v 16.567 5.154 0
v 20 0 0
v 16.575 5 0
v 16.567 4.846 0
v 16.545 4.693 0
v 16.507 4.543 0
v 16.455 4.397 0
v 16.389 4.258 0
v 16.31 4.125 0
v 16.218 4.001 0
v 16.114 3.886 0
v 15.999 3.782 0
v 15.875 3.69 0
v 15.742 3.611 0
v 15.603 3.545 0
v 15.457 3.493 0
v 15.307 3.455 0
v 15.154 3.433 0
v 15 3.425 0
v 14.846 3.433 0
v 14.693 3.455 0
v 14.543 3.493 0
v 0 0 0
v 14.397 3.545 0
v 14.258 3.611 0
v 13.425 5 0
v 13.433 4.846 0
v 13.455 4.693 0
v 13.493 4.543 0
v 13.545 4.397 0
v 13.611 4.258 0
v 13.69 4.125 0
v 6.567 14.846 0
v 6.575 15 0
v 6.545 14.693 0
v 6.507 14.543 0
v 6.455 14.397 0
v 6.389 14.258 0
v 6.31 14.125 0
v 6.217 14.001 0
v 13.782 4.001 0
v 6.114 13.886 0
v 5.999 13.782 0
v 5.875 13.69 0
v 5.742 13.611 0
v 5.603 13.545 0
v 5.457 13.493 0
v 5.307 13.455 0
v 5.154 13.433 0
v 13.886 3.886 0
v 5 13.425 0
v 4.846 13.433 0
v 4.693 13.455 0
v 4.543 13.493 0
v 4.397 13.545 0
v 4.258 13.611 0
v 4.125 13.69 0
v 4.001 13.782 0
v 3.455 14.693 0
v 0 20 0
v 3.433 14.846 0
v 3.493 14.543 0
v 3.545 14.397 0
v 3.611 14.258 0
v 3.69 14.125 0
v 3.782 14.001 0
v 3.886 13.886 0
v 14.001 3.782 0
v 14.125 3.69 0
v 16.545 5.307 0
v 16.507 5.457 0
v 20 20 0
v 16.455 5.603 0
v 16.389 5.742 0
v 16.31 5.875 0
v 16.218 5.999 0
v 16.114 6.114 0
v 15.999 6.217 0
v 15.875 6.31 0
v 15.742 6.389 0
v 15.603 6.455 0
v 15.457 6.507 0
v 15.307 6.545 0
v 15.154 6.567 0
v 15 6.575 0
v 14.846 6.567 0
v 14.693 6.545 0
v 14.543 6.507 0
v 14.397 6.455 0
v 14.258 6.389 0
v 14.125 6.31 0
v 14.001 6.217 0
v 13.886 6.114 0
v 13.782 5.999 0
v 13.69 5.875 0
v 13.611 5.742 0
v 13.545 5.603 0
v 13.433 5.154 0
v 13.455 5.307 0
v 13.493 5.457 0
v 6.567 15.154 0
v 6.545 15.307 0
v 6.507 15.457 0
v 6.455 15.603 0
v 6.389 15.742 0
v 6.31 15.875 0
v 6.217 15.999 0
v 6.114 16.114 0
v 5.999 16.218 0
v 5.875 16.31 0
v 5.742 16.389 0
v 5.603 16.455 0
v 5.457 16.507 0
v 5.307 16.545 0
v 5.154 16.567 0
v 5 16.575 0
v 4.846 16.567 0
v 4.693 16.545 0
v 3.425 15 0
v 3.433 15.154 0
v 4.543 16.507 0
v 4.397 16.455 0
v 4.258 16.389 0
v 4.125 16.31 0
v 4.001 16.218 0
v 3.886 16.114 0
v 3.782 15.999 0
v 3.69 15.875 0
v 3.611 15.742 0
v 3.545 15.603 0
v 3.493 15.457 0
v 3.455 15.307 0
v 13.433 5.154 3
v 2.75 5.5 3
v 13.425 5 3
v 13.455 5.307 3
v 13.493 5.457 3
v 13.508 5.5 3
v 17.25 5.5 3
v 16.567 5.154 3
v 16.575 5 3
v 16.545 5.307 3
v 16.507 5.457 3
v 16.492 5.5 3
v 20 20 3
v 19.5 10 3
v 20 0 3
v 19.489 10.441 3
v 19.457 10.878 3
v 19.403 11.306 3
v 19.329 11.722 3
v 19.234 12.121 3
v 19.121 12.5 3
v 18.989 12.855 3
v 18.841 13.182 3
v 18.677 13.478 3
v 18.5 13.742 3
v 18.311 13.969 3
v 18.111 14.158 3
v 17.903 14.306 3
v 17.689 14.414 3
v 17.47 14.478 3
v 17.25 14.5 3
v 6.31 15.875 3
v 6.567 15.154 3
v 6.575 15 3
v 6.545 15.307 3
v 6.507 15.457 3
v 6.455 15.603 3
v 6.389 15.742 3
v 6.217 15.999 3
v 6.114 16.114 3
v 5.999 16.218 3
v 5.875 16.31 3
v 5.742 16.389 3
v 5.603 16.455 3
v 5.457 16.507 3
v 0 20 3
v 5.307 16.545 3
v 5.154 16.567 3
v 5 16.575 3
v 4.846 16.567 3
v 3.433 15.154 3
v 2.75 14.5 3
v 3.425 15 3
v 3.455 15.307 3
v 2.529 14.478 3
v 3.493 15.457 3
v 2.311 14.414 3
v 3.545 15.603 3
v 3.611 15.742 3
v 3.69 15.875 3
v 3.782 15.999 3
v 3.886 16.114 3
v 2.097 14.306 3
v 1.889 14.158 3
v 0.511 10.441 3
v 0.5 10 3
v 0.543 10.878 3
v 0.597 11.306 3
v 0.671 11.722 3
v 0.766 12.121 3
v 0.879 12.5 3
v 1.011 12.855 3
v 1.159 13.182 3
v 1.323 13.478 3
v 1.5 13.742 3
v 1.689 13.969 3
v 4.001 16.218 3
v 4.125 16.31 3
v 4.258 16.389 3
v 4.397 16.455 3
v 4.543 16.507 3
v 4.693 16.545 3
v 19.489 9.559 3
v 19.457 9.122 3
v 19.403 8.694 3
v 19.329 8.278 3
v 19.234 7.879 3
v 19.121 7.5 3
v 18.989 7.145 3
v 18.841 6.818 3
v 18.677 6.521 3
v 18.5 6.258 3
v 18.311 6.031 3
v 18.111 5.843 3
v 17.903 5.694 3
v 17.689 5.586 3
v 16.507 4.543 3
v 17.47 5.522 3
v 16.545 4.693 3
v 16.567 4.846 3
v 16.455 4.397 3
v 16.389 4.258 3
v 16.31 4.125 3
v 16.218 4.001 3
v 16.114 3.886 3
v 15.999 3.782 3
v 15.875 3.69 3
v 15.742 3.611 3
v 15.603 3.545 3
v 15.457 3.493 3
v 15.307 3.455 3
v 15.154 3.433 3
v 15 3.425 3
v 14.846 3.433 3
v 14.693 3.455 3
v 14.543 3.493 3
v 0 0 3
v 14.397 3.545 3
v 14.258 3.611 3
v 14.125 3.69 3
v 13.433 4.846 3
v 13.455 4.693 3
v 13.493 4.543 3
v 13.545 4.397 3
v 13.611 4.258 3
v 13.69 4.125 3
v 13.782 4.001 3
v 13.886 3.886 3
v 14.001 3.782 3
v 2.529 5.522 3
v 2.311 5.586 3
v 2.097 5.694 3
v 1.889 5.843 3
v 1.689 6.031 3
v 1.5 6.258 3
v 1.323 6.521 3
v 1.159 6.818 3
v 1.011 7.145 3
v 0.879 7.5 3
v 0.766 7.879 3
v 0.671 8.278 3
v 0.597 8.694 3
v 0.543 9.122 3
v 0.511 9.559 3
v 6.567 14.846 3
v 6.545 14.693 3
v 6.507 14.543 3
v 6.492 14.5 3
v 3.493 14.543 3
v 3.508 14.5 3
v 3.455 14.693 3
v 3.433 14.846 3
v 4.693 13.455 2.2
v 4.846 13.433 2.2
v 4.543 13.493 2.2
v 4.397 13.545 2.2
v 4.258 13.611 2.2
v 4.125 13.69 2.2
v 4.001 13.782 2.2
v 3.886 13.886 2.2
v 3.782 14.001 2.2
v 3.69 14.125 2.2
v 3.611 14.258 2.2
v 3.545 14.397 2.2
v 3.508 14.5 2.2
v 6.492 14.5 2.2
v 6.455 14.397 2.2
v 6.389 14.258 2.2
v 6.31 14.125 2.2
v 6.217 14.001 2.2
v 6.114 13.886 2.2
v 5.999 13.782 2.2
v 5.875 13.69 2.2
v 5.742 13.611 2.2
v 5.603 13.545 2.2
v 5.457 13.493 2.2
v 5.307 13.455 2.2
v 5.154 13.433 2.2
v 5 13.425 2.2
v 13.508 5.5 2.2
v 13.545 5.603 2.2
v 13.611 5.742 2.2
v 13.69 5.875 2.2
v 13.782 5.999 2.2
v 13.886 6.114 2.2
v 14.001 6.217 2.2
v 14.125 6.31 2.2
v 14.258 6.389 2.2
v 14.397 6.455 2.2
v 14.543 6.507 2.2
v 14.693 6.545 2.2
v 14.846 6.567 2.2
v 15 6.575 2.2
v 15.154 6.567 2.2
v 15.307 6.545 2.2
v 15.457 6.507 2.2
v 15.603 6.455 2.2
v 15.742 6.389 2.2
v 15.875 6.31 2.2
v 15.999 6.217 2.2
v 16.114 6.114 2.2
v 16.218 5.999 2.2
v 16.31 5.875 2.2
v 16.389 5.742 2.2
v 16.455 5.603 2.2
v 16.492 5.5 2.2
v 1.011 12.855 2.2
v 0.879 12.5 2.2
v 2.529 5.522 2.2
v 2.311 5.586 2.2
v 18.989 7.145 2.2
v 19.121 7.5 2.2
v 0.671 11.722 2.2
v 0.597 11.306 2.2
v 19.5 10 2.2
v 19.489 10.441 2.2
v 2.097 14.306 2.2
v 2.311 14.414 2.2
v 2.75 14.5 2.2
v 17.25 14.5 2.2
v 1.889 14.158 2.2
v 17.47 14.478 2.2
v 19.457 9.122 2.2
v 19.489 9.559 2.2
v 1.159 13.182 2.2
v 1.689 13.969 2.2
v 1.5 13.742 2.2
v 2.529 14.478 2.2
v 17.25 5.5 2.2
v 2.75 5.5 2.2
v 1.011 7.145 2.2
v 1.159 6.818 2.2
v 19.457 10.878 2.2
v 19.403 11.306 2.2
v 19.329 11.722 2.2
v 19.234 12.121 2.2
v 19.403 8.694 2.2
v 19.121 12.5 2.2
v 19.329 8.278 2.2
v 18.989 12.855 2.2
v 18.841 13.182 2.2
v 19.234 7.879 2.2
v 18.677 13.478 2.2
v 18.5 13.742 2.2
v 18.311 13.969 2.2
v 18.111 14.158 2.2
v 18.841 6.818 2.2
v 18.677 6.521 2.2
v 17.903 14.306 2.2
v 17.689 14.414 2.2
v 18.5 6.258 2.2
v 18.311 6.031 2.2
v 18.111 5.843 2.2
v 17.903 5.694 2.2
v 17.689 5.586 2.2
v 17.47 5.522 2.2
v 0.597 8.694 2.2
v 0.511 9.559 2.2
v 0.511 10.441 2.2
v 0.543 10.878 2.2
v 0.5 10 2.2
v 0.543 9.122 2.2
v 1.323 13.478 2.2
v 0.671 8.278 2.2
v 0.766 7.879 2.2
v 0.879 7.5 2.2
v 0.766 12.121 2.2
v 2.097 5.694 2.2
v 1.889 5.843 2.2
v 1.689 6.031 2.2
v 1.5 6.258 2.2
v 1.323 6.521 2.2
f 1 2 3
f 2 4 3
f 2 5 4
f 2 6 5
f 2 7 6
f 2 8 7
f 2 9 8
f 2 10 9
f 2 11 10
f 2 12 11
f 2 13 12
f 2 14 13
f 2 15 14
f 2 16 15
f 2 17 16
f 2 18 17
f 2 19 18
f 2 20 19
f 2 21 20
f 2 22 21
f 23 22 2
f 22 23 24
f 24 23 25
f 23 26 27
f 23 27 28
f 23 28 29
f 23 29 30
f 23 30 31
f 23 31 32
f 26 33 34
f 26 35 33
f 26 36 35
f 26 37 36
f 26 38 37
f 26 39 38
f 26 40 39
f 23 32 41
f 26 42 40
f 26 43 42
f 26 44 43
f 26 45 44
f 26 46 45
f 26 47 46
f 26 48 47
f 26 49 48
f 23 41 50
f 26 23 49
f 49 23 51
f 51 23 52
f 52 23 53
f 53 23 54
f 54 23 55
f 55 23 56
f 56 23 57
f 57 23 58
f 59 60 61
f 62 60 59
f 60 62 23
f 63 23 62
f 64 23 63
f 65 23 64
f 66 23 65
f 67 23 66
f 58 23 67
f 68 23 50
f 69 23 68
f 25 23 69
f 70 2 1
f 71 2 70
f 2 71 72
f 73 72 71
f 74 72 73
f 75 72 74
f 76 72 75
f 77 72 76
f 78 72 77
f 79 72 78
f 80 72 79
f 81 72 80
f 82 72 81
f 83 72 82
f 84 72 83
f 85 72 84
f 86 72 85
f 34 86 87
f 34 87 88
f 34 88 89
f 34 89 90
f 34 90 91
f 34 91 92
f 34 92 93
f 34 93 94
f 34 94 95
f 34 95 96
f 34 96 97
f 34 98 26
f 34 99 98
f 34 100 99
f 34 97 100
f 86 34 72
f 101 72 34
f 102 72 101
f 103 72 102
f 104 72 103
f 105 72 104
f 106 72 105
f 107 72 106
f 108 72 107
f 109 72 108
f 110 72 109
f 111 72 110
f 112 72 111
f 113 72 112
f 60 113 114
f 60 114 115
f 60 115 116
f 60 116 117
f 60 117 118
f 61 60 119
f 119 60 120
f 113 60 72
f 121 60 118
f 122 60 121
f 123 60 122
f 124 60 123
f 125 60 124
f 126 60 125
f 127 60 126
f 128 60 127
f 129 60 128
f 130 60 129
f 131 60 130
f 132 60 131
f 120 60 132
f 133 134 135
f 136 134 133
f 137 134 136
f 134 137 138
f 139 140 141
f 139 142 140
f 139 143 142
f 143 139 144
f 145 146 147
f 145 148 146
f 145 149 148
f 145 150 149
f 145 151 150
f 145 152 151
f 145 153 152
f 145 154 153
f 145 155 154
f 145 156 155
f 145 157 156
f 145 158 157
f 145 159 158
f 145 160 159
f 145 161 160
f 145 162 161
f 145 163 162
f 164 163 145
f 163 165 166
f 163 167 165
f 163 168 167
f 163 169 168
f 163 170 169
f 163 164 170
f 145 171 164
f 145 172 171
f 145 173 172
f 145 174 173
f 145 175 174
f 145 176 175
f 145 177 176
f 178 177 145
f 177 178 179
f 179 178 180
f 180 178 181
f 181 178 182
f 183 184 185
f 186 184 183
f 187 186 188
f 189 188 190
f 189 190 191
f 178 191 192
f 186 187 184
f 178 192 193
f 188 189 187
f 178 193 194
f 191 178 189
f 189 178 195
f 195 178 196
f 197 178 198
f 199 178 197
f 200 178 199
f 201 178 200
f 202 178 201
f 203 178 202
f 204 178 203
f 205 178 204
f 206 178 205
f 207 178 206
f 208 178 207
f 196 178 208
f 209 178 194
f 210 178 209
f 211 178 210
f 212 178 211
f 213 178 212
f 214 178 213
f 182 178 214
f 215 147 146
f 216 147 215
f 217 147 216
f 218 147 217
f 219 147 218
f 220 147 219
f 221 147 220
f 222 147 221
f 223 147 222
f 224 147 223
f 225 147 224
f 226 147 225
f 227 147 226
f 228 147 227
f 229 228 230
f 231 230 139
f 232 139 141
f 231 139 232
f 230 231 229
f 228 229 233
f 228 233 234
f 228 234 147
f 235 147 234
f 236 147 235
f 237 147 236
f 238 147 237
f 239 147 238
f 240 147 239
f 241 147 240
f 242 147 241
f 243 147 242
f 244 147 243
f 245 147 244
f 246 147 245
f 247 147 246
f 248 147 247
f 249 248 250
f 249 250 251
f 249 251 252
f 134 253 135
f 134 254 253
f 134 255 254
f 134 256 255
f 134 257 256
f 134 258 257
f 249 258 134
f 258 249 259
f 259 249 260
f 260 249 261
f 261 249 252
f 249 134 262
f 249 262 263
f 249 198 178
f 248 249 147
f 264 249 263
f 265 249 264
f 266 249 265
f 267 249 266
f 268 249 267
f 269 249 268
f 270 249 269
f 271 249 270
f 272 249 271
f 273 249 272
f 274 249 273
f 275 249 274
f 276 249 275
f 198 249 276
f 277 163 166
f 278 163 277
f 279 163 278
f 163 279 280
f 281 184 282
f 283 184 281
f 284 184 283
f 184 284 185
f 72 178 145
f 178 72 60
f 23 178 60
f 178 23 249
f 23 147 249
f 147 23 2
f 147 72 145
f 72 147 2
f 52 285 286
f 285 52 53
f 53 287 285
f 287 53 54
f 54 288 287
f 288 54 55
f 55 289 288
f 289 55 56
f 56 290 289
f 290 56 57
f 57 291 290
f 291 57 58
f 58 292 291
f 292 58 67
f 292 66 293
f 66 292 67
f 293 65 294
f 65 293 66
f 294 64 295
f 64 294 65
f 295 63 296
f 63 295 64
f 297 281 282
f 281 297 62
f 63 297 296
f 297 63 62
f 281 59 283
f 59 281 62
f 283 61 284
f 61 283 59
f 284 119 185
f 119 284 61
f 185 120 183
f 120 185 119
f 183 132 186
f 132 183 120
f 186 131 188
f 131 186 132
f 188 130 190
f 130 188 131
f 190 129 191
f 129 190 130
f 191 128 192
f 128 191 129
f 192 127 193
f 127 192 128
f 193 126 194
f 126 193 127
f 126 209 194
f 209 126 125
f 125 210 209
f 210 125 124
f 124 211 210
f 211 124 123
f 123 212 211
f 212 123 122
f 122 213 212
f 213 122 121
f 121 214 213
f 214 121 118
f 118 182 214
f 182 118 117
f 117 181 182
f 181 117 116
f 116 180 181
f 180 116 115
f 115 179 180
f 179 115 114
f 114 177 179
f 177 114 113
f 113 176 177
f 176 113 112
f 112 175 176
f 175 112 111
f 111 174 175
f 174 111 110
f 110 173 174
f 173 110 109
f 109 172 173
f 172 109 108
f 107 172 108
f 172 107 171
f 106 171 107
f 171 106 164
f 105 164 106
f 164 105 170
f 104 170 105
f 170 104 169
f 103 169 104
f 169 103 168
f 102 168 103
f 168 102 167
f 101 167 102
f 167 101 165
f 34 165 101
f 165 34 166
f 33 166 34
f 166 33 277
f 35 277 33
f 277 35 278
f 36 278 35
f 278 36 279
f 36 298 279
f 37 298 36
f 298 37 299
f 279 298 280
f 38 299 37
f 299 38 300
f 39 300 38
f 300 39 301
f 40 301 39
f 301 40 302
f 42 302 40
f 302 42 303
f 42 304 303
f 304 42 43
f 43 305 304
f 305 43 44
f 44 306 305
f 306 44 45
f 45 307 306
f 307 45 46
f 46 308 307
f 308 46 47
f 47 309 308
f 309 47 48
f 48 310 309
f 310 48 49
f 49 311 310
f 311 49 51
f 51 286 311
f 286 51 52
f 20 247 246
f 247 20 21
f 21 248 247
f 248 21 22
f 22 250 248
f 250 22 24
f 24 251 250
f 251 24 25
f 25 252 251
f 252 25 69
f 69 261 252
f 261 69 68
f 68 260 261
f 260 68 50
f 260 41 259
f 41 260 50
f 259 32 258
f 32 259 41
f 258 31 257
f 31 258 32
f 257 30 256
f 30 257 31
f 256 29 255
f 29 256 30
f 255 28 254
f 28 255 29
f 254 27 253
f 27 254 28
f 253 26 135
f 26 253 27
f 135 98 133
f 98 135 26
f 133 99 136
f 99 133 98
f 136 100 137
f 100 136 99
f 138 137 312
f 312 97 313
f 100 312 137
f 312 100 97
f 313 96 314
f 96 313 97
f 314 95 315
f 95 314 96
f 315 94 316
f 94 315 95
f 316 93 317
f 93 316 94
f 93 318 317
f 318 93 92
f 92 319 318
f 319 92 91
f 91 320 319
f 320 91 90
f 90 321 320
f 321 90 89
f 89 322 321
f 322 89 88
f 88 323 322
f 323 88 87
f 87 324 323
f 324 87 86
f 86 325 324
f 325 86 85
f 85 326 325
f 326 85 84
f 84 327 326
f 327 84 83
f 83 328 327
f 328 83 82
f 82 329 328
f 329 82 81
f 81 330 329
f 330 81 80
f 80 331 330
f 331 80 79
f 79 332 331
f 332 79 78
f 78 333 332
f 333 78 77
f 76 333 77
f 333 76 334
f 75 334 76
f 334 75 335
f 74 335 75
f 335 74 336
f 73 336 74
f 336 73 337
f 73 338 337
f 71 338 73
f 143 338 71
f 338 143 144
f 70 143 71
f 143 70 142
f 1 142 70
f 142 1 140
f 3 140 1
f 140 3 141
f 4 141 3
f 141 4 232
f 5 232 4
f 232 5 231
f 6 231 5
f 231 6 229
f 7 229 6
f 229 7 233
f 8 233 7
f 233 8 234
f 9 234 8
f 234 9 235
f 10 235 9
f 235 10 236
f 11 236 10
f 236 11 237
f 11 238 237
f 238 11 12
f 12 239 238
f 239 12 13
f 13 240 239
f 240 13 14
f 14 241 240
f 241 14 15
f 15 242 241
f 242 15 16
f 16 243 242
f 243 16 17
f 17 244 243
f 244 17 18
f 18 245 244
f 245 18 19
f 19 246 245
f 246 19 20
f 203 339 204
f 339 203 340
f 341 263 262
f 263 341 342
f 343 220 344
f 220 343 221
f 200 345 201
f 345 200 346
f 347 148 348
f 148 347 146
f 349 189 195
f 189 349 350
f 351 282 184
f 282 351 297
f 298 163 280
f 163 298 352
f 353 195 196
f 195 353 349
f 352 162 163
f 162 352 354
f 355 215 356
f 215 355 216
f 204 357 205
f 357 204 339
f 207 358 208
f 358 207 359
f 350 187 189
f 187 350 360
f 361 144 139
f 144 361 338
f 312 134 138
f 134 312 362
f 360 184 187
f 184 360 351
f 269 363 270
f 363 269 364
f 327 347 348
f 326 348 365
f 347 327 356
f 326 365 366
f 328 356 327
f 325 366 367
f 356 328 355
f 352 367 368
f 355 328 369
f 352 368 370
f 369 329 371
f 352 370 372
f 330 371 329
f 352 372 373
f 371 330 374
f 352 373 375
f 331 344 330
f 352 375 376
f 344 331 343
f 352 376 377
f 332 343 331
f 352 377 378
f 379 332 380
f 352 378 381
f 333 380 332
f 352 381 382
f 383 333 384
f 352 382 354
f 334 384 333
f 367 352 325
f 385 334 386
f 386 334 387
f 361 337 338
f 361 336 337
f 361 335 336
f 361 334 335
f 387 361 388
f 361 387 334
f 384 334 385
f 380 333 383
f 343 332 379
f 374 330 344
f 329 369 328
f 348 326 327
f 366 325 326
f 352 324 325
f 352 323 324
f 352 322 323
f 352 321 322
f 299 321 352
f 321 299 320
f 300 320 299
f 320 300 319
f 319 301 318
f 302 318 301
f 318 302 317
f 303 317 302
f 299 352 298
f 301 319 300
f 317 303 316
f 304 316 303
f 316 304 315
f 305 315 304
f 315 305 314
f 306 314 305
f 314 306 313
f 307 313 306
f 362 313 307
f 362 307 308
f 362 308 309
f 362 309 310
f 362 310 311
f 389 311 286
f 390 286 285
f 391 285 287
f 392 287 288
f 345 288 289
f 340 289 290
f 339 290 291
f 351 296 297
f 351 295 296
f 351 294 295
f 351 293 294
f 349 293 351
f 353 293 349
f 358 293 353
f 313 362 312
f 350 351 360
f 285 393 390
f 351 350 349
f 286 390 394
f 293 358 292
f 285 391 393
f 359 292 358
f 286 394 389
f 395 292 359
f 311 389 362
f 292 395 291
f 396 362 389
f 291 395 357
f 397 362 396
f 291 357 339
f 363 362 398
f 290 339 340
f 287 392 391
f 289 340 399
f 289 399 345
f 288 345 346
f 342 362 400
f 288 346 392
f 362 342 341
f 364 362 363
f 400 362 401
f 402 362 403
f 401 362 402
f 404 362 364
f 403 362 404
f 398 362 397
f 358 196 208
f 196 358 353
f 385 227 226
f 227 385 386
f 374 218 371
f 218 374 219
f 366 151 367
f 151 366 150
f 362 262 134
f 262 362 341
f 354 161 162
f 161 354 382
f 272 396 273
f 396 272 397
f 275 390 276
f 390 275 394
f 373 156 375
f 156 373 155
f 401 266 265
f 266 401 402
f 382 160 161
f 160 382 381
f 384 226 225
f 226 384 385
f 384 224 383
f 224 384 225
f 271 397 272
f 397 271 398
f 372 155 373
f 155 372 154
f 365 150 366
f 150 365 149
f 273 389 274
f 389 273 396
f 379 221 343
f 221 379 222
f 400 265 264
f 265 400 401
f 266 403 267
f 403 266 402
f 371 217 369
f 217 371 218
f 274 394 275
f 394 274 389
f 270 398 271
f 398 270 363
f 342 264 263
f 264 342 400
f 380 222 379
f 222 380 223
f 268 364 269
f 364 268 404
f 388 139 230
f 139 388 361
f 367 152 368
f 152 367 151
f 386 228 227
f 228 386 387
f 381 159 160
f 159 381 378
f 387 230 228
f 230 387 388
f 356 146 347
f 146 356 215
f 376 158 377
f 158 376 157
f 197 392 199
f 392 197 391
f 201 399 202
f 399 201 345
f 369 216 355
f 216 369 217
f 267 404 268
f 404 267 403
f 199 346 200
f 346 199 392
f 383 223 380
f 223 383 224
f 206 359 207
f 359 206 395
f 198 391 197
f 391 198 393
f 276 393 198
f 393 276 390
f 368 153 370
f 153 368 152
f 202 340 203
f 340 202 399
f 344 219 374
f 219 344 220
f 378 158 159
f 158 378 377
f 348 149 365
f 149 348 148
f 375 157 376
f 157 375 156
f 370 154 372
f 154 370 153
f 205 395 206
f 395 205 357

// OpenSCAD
// file: miniature-bases/common/params.scad
$fn = $preview ? 32 : 64;

// Value of kerf to apply when lasercutting things.
// Value is based on the experience using Epilog Mini machine in
// Google WFC Makerspace.
kerf = 0.2;

// Spacing between insert and miniatures bases to allow to slick fit.
insert_spacing = 0.2;
magnet_spacing = 0.15;

// Default values
//
// Default diameter of magnets used for my miniatures.
default_magnet_diameter = 3;
base_height = 3;
pin_height = 2.5;
// file: common/params.scad
$fn = $preview ? 32 : 64;

// Value of kerf to apply when lasercutting things.
// Value is based on the experience using Epilog Mini machine in
// Google WFC Makerspace.
kerf = 0.2;

// Spacing between insert and miniatures bases to allow to slick fit.
insert_spacing = 0.2;
magnet_spacing = 0.15;

// Default values
//
// Default diameter of magnets used for my miniatures.
default_magnet_diameter = 3;
base_height = 3;
pin_height = 2.5;
// file: miniature-bases/common/kow.scad
include <params.scad>;

module MagnetSockets(unit_type, only_diagonal = false) {
  baseSize = BaseSize(unit_type);

  translate([ 5, baseSize[1] - 5 ]) children(0);
  translate([ baseSize[0] - 5, 5 ]) children(0);

  if (!only_diagonal) {
    translate([ 5, 5 ]) children(0);
    translate([ baseSize[0] - 5, baseSize[1] - 5 ]) children(0);
  }
}

module Magnet(d = default_magnet_diameter, offset = 0) {
  circle(d = d + offset);
}

module BM4Sockets(unit_type, spacing, only_diagonal = false) {
  MagnetSockets(unit_type = unit_type, only_diagonal = only_diagonal) {
    Magnet(offset = spacing);
  }
}

module Base(unit_type, extraMargin = [ 0, 0 ]) {
  square(BaseSize(unit_type) + extraMargin);
}

function BaseSize(unit_type) = unit_type == "infantry"         ? [ 20, 20 ]
                               : unit_type == "heavy_infantry" ? [ 25, 25 ]
                               : unit_type == "cavalry"        ? [ 25, 50 ]
                               : unit_type == "lrginf"         ? [ 40, 40 ]
                               : unit_type == "lrgcav"         ? [ 50, 50 ]
                               : unit_type == "titan"          ? [ 75, 75 ]
                                                               : [ 10, 10 ];

function BaseNum(unit_type, unitSize) =
    unit_type == "infantry"  ? unitSize == "legion"     ? [ 10, 6 ]
                               : unitSize == "horde"    ? [ 10, 4 ]
                               : unitSize == "regiment" ? [ 5, 4 ]
                                                        : [ 5, 2 ]
    : unit_type == "cavalry" ? unitSize == "regiment" ? [ 5, 2 ] : [ 5, 1 ]
    : unit_type == "lrginf"  ? unitSize == "regiment" ? [ 3, 1 ] : [ 3, 2 ]
    : unit_type == "lrgcav"  ? unitSize == "regiment" ? [ 3, 1 ]
                               : unitSize == "horde"  ? [ 3, 2 ]
                                                      : [ 1, 1 ]
                             : [ 1, 1 ];
// file: common/kow.scad
include <params.scad>;

module MagnetSockets(unit_type, only_diagonal = false) {
  baseSize = BaseSize(unit_type);

  translate([ 5, baseSize[1] - 5 ]) children(0);
  translate([ baseSize[0] - 5, 5 ]) children(0);

  if (!only_diagonal) {
    translate([ 5, 5 ]) children(0);
    translate([ baseSize[0] - 5, baseSize[1] - 5 ]) children(0);
  }
}

module Magnet(d = default_magnet_diameter, offset = 0) {
  circle(d = d + offset);
}

module BM4Sockets(unit_type, spacing, only_diagonal = false) {
  MagnetSockets(unit_type = unit_type, only_diagonal = only_diagonal) {
    Magnet(offset = spacing);
  }
}

module Base(unit_type, extraMargin = [ 0, 0 ]) {
  square(BaseSize(unit_type) + extraMargin);
}

function BaseSize(unit_type) = unit_type == "infantry"         ? [ 20, 20 ]
                               : unit_type == "heavy_infantry" ? [ 25, 25 ]
                               : unit_type == "cavalry"        ? [ 25, 50 ]
                               : unit_type == "lrginf"         ? [ 40, 40 ]
                               : unit_type == "lrgcav"         ? [ 50, 50 ]
                               : unit_type == "titan"          ? [ 75, 75 ]
                                                               : [ 10, 10 ];

function BaseNum(unit_type, unitSize) =
    unit_type == "infantry"  ? unitSize == "legion"     ? [ 10, 6 ]
                               : unitSize == "horde"    ? [ 10, 4 ]
                               : unitSize == "regiment" ? [ 5, 4 ]
                                                        : [ 5, 2 ]
    : unit_type == "cavalry" ? unitSize == "regiment" ? [ 5, 2 ] : [ 5, 1 ]
    : unit_type == "lrginf"  ? unitSize == "regiment" ? [ 3, 1 ] : [ 3, 2 ]
    : unit_type == "lrgcav"  ? unitSize == "regiment" ? [ 3, 1 ]
                               : unitSize == "horde"  ? [ 3, 2 ]
                                                      : [ 1, 1 ]
                             : [ 1, 1 ];
// file: miniature-bases/libbase.scad
include <common/kow.scad>;

module MagnetHole() { Magnet(offset = magnet_spacing); } 

module BaseBM4(unit_type, only_diagonal = false) {
  linear_extrude(height = base_height) {
    difference() {
      Base(unit_type = unit_type);
      union() {
        MagnetSockets(unit_type = unit_type, only_diagonal = only_diagonal) {
          MagnetHole();
        }
        children();
      }
    }
  }
}

SLOTTA_ANGLE = 0;
SLOTTA_SLOT_MARGIN = 1.5; 
SLOT_WIDTH = 1.7;  


module SlottaBM4(a = SLOTTA_ANGLE, unit_type = "infantry", slot_margin = SLOTTA_SLOT_MARGIN) {
  base_size = BaseSize(unit_type);

  // slot_length = 18; for a = 0 (as in GW bases)
  // total_slot_margin = 4; for a = 45 (as in GW bases)

  slot_length =
      (base_size[0] - 2 * slot_margin - cos(90 - a) * SLOT_WIDTH) / cos(a);

  BaseBM4(unit_type = unit_type, only_diagonal = true) {
    translate(0.5 * base_size) rotate(a)
        square([ slot_length, SLOT_WIDTH ], center = true);
  };
}

module CavalrySlot() {
  slotWidth = 2.5;
  slotLength = 35;
  slotSpacing = 2.8;
  baseSize = BaseSize("cavalry");

  translate([
    (baseSize[0] - 2 * slotWidth - slotSpacing) / 2,
    (baseSize[1] - slotLength) / 2
  ]) {
    square([ slotWidth, slotLength ]);
    translate([ slotSpacing + slotWidth, 0 ]) square([ slotWidth, slotLength ]);
  }
}
// main file
use <miniature-bases/libbase.scad>
use <common/kow.scad>

$fn = $preview ? 32 : 64;

base_size = BaseSize("infantry");
width = 9;
length = 19;
slot_start = 2.2;

difference() {
  BaseBM4("infantry", only_diagonal = true);

  translate([ 0, 0, slot_start ]) linear_extrude(height = 10) {
    hull() {
      m = length / 2 - width / 4;
      translate([ base_size[0] / 2 + m, base_size[1] / 2, 0 ]) scale([ 0.5, 1 ])
          circle(d = width);
      translate([ base_size[0] / 2 - m, base_size[1] / 2, 0 ]) scale([ 0.5, 1 ])
          circle(d = width);
    }
  }
}
